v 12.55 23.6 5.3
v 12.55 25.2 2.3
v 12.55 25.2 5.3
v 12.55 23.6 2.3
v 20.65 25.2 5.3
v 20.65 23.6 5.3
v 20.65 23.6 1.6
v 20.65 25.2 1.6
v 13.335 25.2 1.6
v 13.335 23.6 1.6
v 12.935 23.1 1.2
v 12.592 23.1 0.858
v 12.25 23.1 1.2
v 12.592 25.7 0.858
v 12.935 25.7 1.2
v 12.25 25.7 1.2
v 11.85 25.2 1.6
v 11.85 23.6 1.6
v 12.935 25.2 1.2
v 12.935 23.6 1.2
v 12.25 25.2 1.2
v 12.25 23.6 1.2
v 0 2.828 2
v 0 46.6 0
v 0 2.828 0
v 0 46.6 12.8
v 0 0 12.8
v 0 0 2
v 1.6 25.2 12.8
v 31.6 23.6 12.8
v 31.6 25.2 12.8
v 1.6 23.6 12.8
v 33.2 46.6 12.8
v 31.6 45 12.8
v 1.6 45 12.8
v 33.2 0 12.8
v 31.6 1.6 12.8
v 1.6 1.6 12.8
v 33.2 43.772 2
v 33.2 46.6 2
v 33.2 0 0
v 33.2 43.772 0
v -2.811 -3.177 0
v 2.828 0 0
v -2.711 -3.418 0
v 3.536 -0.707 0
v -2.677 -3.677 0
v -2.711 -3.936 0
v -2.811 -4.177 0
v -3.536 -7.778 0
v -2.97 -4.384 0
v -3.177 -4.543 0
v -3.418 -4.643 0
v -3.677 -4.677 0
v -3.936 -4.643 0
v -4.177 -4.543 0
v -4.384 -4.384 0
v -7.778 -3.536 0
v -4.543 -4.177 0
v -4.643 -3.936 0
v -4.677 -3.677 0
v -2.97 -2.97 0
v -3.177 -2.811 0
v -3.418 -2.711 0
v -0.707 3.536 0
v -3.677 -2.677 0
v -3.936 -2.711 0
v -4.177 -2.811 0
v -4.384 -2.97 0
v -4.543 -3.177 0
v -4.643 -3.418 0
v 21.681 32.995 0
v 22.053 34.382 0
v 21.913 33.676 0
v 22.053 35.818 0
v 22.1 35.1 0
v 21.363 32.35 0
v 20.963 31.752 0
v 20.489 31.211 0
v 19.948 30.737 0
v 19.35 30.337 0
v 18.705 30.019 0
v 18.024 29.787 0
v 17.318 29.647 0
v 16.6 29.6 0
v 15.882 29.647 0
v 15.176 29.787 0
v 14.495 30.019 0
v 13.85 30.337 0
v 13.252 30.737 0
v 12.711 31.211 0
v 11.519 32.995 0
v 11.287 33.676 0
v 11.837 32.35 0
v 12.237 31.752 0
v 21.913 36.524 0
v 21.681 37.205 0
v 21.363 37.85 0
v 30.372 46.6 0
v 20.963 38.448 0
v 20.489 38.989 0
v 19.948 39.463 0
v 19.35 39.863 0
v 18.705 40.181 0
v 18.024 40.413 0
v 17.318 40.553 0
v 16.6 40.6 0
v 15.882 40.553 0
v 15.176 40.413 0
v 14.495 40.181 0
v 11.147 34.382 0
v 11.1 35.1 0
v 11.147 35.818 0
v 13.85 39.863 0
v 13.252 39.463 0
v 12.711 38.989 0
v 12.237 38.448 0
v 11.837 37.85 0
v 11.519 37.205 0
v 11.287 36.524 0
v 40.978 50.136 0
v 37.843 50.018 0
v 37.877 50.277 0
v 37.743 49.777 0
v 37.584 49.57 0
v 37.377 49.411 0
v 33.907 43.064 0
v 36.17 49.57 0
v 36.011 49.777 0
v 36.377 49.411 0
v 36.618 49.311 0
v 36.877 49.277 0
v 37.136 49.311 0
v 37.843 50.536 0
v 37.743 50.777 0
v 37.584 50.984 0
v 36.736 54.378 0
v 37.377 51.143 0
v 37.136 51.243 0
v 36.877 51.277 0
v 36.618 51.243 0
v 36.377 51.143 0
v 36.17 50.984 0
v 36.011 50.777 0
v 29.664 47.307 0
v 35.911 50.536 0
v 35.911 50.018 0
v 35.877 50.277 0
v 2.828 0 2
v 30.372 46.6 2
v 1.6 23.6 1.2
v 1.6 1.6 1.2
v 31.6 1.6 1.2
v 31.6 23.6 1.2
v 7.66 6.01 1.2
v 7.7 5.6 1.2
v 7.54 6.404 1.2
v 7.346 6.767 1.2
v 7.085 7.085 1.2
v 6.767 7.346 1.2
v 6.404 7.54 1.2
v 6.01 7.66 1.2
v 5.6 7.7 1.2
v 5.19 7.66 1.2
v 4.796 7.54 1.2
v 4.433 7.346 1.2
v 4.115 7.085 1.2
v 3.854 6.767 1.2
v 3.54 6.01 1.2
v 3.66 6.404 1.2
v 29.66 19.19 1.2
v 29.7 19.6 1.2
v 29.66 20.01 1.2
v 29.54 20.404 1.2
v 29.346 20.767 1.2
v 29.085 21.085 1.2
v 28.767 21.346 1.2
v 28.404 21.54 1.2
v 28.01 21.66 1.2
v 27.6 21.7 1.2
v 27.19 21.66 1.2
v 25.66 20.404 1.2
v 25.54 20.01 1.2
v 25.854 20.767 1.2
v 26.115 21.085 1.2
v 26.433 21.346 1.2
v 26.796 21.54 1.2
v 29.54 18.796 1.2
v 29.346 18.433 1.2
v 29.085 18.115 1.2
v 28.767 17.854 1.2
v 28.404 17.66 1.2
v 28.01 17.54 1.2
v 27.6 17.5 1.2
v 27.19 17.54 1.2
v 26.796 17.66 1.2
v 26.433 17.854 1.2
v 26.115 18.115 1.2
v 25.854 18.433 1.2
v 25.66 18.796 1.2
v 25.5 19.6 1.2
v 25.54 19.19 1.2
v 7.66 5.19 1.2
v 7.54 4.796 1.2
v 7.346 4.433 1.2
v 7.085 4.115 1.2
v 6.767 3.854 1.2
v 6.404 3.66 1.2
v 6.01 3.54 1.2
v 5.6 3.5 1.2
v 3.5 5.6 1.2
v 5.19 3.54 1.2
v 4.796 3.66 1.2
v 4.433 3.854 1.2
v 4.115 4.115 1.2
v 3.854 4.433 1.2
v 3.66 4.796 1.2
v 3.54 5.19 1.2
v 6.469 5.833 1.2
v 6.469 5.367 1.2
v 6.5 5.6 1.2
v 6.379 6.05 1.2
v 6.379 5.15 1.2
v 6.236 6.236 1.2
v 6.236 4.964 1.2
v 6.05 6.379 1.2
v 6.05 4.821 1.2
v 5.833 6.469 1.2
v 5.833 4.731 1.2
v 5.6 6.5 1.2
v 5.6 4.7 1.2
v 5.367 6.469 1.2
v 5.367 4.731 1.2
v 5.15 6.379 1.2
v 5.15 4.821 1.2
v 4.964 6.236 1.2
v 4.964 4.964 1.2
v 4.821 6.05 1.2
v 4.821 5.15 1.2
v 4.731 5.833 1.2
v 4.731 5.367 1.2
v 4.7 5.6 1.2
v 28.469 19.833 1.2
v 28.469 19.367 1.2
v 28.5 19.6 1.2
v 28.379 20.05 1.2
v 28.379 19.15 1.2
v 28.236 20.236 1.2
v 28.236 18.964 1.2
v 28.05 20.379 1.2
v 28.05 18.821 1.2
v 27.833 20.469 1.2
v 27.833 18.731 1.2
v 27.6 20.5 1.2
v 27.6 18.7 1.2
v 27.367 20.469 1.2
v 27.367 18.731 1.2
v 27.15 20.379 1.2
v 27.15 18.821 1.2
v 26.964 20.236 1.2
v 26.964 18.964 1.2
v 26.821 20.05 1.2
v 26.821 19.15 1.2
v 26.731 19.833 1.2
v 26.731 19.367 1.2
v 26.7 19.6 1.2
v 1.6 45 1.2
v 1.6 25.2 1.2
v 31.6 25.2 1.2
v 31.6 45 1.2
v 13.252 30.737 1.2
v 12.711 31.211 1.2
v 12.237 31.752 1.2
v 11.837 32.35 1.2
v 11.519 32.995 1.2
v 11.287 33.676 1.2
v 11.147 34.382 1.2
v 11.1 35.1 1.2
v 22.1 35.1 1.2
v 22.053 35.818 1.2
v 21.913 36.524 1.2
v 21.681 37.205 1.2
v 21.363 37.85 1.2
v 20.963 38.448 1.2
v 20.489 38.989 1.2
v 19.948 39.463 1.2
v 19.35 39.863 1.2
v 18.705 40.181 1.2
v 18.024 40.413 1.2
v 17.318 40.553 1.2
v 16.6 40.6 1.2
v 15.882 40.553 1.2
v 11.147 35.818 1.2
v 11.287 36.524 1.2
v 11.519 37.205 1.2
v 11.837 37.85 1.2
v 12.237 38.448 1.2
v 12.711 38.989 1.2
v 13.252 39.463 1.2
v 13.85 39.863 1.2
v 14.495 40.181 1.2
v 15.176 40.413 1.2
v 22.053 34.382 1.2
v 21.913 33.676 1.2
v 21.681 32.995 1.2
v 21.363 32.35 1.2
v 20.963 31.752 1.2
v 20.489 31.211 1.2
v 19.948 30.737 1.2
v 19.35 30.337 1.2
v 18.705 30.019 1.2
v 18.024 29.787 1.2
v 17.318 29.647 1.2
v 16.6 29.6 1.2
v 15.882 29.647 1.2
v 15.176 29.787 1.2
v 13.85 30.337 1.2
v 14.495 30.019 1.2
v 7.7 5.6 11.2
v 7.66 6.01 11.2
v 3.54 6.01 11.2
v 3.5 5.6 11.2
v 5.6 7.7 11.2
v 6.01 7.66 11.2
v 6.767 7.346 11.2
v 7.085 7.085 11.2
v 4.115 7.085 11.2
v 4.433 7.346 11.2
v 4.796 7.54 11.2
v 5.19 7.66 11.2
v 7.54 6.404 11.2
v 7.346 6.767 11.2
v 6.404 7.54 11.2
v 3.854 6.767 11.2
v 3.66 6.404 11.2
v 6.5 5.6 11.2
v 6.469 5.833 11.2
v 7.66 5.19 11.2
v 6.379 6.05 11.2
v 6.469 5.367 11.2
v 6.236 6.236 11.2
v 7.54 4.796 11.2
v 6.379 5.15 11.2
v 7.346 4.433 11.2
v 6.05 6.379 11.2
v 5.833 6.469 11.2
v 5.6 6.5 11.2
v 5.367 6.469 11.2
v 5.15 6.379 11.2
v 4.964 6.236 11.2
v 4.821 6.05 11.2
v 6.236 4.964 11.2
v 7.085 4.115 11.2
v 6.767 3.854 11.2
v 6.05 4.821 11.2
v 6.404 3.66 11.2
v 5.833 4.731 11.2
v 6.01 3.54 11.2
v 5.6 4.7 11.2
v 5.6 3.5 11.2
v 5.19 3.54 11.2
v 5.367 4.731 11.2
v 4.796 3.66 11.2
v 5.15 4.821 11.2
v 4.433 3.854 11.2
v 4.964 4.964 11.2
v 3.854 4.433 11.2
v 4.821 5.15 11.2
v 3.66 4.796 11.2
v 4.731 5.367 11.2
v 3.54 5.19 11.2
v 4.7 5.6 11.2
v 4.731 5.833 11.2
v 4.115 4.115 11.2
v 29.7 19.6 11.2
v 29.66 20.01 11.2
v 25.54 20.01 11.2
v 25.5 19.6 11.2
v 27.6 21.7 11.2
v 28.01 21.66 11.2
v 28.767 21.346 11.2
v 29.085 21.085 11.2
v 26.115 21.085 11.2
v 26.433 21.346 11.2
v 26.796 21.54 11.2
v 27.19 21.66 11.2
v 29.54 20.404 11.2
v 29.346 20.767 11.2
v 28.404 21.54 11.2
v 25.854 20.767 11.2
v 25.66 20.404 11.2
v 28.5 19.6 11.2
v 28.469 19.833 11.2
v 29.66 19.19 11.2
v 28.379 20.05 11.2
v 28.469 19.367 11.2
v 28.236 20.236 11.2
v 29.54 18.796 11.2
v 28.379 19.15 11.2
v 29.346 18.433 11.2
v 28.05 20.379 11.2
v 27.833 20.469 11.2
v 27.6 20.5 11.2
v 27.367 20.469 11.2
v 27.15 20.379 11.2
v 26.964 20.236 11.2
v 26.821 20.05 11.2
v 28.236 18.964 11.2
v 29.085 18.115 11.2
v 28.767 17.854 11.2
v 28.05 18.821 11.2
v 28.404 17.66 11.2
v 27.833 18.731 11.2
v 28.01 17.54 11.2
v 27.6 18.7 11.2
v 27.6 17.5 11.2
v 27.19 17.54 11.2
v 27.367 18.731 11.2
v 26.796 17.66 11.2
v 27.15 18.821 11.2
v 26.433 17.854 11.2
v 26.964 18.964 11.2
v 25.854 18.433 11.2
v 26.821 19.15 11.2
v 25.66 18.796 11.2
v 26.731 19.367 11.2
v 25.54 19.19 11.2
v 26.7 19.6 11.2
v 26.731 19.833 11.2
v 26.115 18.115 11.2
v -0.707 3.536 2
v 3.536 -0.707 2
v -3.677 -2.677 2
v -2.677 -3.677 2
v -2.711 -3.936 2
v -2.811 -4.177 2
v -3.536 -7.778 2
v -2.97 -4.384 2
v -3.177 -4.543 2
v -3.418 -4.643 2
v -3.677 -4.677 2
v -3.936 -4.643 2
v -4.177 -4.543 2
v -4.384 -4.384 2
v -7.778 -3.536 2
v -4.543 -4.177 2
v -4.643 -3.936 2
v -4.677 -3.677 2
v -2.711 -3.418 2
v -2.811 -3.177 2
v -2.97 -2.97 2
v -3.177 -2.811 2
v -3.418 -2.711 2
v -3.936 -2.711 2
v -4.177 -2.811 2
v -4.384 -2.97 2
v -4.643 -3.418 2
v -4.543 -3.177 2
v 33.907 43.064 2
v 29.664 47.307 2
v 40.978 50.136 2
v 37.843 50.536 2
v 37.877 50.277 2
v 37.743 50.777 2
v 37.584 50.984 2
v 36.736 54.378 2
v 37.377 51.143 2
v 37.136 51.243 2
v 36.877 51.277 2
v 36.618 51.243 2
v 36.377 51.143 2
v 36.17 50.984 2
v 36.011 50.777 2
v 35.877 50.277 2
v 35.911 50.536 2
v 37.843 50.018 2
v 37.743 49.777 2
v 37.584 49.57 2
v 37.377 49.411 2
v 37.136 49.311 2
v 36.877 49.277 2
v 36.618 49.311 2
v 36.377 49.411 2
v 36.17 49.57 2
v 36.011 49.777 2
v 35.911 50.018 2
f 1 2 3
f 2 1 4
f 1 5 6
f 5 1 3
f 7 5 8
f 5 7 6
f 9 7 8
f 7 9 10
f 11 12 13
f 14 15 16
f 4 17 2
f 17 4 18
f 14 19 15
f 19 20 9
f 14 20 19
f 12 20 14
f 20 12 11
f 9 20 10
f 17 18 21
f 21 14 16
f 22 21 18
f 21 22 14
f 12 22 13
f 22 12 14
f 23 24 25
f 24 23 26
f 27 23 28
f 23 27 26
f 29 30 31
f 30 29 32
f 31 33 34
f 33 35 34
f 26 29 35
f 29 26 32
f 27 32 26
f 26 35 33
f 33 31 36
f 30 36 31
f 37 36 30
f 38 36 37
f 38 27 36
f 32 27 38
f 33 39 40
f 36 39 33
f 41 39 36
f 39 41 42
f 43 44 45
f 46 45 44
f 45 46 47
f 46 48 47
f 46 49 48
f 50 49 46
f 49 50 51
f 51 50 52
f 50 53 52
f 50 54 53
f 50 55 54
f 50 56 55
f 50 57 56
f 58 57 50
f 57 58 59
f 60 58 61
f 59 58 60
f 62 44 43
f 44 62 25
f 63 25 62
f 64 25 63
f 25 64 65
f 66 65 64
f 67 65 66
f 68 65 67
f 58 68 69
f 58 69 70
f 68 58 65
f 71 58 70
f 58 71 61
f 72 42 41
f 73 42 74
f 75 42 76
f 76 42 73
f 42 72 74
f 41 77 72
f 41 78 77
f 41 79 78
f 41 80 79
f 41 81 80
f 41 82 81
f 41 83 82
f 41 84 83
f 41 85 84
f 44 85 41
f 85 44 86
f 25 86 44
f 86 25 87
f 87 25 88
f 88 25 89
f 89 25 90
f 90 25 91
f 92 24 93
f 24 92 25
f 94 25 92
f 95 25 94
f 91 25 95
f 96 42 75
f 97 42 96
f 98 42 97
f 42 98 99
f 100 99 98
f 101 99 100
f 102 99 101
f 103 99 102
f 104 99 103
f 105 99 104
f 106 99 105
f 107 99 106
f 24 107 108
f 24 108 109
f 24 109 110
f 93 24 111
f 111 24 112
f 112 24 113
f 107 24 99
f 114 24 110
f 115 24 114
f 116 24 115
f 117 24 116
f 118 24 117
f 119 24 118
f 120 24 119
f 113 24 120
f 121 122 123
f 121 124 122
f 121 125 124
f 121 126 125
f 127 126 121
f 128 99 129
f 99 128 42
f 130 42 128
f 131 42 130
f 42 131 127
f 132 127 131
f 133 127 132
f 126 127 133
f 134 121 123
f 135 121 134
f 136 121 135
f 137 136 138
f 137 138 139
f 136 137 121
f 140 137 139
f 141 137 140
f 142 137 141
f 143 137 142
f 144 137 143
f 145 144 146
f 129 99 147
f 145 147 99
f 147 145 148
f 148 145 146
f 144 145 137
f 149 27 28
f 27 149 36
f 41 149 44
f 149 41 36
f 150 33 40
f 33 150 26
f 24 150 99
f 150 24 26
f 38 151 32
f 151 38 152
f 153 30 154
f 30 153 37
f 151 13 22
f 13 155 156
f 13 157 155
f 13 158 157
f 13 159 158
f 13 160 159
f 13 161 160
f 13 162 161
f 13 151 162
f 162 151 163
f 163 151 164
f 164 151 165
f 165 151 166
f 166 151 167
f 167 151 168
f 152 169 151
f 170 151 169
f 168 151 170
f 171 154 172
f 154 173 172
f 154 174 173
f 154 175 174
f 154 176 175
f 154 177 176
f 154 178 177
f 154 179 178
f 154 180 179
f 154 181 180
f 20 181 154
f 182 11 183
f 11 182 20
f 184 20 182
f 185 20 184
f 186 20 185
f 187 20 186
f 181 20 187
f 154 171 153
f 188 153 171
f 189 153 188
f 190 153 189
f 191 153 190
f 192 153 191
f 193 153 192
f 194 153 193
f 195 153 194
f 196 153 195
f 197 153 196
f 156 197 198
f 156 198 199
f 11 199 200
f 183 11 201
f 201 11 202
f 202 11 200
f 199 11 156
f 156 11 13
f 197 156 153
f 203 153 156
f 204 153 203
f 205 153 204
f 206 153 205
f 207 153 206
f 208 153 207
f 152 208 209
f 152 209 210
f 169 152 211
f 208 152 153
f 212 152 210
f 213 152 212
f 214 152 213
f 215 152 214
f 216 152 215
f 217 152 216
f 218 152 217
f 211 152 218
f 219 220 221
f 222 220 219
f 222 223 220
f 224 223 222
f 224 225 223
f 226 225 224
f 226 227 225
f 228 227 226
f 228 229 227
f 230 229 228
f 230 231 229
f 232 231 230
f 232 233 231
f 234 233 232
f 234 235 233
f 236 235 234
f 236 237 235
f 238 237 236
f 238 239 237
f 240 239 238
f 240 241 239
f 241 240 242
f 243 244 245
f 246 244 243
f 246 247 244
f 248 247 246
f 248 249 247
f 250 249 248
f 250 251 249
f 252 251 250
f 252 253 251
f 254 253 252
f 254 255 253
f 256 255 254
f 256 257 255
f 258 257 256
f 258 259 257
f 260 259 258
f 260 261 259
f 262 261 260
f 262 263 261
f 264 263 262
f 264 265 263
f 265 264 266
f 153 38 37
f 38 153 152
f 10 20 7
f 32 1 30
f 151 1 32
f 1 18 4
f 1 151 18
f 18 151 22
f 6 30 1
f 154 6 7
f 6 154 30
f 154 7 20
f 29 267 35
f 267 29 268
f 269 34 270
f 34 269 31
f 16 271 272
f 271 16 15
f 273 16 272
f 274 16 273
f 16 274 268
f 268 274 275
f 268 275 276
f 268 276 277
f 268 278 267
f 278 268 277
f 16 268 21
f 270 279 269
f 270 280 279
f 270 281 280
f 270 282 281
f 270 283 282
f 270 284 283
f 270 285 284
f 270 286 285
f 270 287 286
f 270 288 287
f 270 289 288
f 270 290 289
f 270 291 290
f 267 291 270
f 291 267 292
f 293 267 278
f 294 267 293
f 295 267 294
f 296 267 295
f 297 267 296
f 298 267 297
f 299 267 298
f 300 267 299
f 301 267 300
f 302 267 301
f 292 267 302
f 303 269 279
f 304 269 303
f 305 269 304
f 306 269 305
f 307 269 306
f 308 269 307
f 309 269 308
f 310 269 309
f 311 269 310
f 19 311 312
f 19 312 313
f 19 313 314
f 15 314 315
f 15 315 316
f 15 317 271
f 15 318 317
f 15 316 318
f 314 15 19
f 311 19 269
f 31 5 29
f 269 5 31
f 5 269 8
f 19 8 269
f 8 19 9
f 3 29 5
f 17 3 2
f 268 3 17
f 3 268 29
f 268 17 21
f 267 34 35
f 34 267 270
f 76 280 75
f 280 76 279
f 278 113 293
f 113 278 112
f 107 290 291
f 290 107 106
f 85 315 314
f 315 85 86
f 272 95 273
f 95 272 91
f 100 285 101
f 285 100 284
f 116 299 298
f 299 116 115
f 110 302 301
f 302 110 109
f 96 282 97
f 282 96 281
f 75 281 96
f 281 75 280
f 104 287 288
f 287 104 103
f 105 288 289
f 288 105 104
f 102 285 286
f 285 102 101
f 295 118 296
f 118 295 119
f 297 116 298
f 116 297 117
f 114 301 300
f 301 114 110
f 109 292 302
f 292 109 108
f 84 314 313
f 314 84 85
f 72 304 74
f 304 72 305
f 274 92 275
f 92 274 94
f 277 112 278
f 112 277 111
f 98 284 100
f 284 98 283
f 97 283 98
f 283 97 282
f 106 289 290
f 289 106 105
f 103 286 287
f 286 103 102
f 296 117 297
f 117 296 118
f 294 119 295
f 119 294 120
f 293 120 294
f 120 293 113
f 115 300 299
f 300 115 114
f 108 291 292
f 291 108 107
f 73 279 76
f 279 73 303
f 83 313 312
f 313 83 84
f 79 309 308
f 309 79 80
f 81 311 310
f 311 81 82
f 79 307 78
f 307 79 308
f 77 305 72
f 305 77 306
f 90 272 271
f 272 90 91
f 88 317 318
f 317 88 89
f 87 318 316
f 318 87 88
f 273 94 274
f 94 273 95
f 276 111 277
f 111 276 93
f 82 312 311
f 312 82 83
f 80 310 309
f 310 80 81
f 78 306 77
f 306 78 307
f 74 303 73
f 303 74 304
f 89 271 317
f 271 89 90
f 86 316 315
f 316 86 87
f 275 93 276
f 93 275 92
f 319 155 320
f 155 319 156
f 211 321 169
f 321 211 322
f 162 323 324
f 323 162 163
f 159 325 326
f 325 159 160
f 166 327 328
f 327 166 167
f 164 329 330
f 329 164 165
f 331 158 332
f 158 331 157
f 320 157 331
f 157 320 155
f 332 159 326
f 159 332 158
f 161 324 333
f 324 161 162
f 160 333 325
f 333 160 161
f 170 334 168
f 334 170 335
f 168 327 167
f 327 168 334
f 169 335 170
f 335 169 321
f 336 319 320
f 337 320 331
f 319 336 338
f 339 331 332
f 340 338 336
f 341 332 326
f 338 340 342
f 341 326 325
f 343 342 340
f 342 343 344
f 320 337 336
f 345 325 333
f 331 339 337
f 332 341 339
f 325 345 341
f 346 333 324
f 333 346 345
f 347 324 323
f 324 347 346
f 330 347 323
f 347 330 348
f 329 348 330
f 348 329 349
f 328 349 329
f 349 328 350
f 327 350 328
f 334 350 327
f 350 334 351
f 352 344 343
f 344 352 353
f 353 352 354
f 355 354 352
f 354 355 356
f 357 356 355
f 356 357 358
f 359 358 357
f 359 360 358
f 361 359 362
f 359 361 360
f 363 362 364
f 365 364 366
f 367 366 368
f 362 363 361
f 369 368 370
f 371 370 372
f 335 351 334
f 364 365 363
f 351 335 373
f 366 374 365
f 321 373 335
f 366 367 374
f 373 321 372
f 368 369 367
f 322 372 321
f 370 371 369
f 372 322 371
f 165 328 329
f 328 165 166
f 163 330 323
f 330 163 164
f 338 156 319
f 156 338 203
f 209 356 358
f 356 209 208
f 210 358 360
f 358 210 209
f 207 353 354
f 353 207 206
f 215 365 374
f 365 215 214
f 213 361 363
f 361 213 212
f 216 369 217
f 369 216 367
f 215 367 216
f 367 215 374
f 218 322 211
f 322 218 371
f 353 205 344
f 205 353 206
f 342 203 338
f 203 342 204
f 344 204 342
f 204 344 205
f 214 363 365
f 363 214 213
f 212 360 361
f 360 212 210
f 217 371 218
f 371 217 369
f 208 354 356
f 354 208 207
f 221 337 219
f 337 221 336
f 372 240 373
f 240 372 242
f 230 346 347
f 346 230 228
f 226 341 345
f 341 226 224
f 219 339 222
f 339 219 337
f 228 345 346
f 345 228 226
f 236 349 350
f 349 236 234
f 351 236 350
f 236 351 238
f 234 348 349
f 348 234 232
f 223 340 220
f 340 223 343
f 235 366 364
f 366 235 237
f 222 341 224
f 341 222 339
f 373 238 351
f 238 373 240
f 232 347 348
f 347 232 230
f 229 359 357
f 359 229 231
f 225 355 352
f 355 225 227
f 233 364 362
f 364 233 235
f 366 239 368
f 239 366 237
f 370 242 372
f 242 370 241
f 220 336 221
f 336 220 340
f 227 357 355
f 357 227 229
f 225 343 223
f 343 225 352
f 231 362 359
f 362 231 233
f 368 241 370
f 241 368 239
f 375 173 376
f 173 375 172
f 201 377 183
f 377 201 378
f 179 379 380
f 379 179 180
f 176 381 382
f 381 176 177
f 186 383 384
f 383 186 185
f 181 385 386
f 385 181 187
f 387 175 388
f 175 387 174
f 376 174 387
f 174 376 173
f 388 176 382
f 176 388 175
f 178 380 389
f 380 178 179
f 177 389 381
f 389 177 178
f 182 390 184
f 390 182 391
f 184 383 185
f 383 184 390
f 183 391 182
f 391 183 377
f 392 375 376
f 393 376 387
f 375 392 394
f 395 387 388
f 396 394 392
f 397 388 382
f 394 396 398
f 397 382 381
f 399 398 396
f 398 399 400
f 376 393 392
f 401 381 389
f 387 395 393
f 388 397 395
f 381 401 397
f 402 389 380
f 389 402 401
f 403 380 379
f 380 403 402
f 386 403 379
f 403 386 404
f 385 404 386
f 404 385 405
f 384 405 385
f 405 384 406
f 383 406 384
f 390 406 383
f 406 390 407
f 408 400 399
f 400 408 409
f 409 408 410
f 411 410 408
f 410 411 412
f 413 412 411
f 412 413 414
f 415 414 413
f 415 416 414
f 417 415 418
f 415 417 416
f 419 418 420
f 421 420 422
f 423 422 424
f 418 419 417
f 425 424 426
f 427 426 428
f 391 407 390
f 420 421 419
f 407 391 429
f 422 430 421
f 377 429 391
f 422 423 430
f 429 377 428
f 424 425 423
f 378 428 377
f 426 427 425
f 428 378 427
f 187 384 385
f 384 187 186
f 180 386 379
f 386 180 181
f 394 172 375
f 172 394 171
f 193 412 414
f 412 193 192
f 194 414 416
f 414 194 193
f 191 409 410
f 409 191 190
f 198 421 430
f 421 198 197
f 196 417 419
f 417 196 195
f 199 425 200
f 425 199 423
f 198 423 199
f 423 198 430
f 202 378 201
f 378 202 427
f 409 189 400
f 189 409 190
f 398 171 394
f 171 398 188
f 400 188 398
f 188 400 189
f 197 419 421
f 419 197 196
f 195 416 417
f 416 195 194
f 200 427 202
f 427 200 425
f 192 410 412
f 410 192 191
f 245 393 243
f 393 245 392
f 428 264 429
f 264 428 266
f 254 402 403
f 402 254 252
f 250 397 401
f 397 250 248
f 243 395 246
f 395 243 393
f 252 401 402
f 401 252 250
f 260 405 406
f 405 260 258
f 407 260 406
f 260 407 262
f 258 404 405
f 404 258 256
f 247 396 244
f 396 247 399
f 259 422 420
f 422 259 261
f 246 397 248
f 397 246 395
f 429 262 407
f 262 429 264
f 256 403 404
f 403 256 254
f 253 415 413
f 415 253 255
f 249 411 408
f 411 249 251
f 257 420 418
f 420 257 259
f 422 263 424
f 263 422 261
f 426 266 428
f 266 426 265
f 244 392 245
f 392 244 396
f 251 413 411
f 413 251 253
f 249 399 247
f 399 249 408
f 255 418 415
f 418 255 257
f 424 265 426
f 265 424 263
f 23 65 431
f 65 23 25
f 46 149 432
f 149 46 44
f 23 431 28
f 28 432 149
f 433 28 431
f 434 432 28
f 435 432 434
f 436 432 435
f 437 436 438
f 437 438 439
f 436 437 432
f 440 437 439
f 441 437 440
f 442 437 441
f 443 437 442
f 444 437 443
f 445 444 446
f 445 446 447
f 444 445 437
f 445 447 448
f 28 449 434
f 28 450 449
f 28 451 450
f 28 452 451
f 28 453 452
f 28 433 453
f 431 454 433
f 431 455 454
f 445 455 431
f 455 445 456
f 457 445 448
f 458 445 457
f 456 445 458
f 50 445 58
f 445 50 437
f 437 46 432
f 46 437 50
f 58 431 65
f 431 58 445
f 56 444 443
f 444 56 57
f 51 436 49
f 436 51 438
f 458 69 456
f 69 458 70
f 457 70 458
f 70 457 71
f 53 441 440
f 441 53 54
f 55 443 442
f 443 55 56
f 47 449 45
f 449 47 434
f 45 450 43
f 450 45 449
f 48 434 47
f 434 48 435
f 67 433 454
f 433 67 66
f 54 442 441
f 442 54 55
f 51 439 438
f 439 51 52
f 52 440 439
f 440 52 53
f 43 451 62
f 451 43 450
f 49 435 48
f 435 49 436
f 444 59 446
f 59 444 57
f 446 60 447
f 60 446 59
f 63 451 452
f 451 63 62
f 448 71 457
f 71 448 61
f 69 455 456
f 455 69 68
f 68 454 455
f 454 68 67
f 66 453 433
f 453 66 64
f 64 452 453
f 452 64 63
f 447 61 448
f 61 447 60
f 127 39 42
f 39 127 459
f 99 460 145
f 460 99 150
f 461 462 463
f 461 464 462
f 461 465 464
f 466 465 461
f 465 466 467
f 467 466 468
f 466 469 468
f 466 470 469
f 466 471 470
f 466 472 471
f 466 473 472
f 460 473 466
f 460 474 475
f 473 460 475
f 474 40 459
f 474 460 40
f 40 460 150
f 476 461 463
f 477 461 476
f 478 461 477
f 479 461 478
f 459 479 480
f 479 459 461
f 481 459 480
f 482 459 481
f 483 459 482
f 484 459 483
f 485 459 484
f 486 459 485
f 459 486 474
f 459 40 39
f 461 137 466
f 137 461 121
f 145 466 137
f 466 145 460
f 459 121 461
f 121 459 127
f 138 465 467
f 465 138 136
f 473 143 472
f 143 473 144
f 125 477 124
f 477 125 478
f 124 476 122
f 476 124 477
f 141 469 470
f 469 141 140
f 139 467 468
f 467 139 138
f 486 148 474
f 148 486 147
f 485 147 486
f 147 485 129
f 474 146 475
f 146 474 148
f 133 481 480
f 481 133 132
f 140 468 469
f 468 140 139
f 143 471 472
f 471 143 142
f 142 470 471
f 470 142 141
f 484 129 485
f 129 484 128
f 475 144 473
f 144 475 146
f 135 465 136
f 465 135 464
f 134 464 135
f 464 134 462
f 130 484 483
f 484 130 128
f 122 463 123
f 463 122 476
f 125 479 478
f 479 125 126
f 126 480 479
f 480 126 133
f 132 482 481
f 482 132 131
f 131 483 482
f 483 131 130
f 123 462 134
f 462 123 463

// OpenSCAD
// ============================================================
//  Meridian Wrist Array — Satellite Pod v2
//  Rebuilt Aug 2026 | Sean (Whitehorse, YT)
//
//  ** REBUILD NOTICE **
//  The original satellite_pod_v2.scad could not be found on disk.
//  This file was reconstructed from two sources:
//    1. Authored parameter/geometry fragments recovered from past
//       conversation transcripts (marked CONFIRMED below).
//    2. Direct measurement of satellite_pod_v2_side.stl, which you
//       still had. Two values were back-solved from that mesh and
//       are marked DERIVED — trustworthy as dimensions, but the
//       original formulas that produced them are not recovered.
//    3. A few features (screw boss exact placement, lid rim) had no
//       surviving source text at all and are marked REBUILT — these
//       are reasonable reconstructions, not verified originals.
//       Cross-check against your physical prints before reprinting
//       a batch on these.
//
//  Rendered POD_L and POD_H below reproduce the uploaded STL's
//  bounding box exactly (33.2 x 46.6 x 12.8mm) — see the print
//  at the bottom of this file for the live check.
//
//  v2 change (CONFIRMED, from source): LRA pocket placement is a
//  parameter.
//    LRA_SIDE = "end"   -> v1 layout, pocket beyond the chamber's
//                          far end: [ DRV ][ div ][ LRA ]
//    LRA_SIDE = "side"  -> pocket alongside the chamber's long
//                          wall (pod gets wider, shorter):
//                              [ DRV chamber ]
//                              [   divider   ]
//                              [ LRA pocket  ]
//    LRA_X_FRAC slides the LRA along the chamber length in side
//    mode, 0.0 = cable-hole end, 1.0 = far end. NOT recovered from
//    source — set to 0.5 as a placeholder. Re-tune by dry-fitting
//    your DRV board and aligning to its OUT+/OUT- pads before
//    trusting this value.
//
//  NEW in this rebuild: LRA_CONN geometry. A notch through the
//  divider wall sized to the in-line connector on your LRA lead
//  (measured 6.90 x 3.20 x 2.20mm), positioned low near the floor
//  so it stays clear of the lid parting line rather than needing
//  a lid-side channel.
// ============================================================

// ---- Pod variant switch (CONFIRMED) ----
BOARD_TYPE = "drv_lra"; // "drv_lra" or "mux" -- this STL was drv_lra (verified: CHAMBER_L math reproduces measured 33.2mm exactly only with DRV_L, not MUX_L)
LRA_SIDE   = "side";    // "end" or "side"
LRA_X_FRAC = 0.5;       // REBUILT placeholder -- re-tune by dry fit, see note above

// ---- Component dimensions (CONFIRMED) ----
DRV_L = 26;    // Adafruit DRV2605L STEMMA QT board length
DRV_W = 18;    // board width
MUX_L = 31;    // TCA9548A breakout length -- Sean measured
MUX_W = 17.71; // TCA9548A breakout width -- Sean measured
BOARD_CLR = 2; // clearance added around the board, each side

LRA_D = 10;    // LRA diameter (coin-type)
LRA_T = 4;     // LRA thickness
LRA_SKIN_GAP = 1.0; // skin-contact opening = LRA_D + this

HAS_POCKET = (BOARD_TYPE == "drv_lra");
BOARD_L = (BOARD_TYPE == "mux") ? MUX_L : DRV_L;
BOARD_W = (BOARD_TYPE == "mux") ? MUX_W : DRV_W;

// ---- Wall/floor/lid thicknesses (CONFIRMED) ----
WALL  = 1.6;
FLOOR = 1.2;
LID_T = 1.6;
DIVIDER_T = WALL;

// ---- Derived chamber sizes (CONFIRMED formula, CHAMBER_H confirmed) ----
CHAMBER_L = BOARD_L + BOARD_CLR*2;
CHAMBER_W = BOARD_W + BOARD_CLR*2;
CHAMBER_H = 10; // matches puck's rev-4.5 DRV clearance convention; check vs your actual board+header stack

// ---- Pocket sizing (DERIVED from STL -- formula not recovered) ----
POCKET_SPAN = 19.8; // back-solved from measured pod Y=46.6mm; treat as a known-good
                     // number for THIS pod, not a formula to trust for other boards
POCKET_H = CHAMBER_H;

// ---- NEW: LRA connector channel through the divider ----
// Measured connector body: 6.90(L) x 3.20(W) x 2.20(H)mm
CONN_L = 6.90;
CONN_W = 3.20;
CONN_H = 2.20;
CONN_CLR_W = 0.7;   // total width clearance (per side ~0.35, PETG print tolerance)
CONN_CLR_H = 1.5;   // total height clearance -- bumped +1mm from 0.5 per print fit test (was too short)
CHANNEL_W = CONN_L + 1.2;      // 9-10mm target: length axis of connector runs along the channel
CHANNEL_H = CONN_H + CONN_CLR_H; // 3.7mm -- fits within DIVIDER_T's adjacent floor zone
CHANNEL_MOUTH_CHAMFER = 0.7;   // chamfer at each channel mouth so the wire jacket doesn't bite on a sharp edge

// Position: aligned with LRA_X_FRAC by default so the channel sits
// right next to wherever the LRA pocket actually lands. Override
// with CHANNEL_X_FRAC if your DRV board's OUT+/OUT- pads are
// somewhere else along the chamber.
CHANNEL_X_FRAC = LRA_X_FRAC;
CHANNEL_X = WALL + (CHAMBER_L - CHANNEL_W) * CHANNEL_X_FRAC;
CHANNEL_Z = FLOOR + 0.4; // low, near the floor -- clear of the lid regardless of LID_T

// ---- Pod outer envelope ----
POD_L = WALL + CHAMBER_L + WALL; // side mode: length axis is just the chamber, unchanged from v1
POD_W = HAS_POCKET && LRA_SIDE == "side"
    ? (WALL + CHAMBER_W + DIVIDER_T + POCKET_SPAN + WALL)
    : (CHAMBER_W + WALL*2);
POD_H = FLOOR + CHAMBER_H + LID_T;

// ---- NEW: stitch tabs for sewing the pod to a non-stretch rail ----
// No surviving source for these -- fresh design. Two tabs at diagonal
// corners (same convention as the screw bosses below), each a flat
// wing in the floor plane with a through-hole for waxed thread/floss.
// Bump TAB_HOLE_D if you're using something chunkier like paracord.
TAB_W = 8.0;       // tab length, projecting out from the corner
TAB_D = 6.0;       // tab width, perpendicular to projection
TAB_T = 2.0;       // tab thickness -- slightly thicker than FLOOR alone for stitch durability
TAB_HOLE_D = 2.0;  // through-hole diameter
TAB_HOLE_FRAC = 0.65; // hole position along the tab length, clear of the wall root
TAB_OVERLAP = 2.0; // tab extends this far INTO the shell wall so the union is a real
                    // solid merge, not just two solids touching along one edge

module stitch_tab(corner_x, corner_y, angle_deg) {
    translate([corner_x, corner_y, 0])
        rotate([0, 0, angle_deg])
            difference() {
                translate([-TAB_OVERLAP, -TAB_D/2, 0])
                    cube([TAB_W + TAB_OVERLAP, TAB_D, TAB_T]);
                translate([TAB_W * TAB_HOLE_FRAC, 0, -0.5])
                    cylinder(d=TAB_HOLE_D, h=TAB_T + 1, $fn=24);
            }
}

module stitch_tabs() {
    stitch_tab(0, 0, 225);         // near corner, points away into -x,-y
    stitch_tab(POD_L, POD_W, 45);  // far corner, points away into +x,+y
}

// ---- REBUILT: screw boss geometry (no surviving source text --
//      positions taken from sectioning the uploaded STL directly) ----
BOSS_OD = 4.2;
BOSS_ID = 1.8; // M2 self-tapping pilot, per puck-design convention
BOSS_H  = FLOOR + CHAMBER_H;
BOSS_INSET = 4.0; // approx from mesh section, diagonal corners

module screw_boss(x, y) {
    translate([x, y, 0])
        difference() {
            cylinder(d=BOSS_OD, h=BOSS_H, $fn=32);
            translate([0,0,-0.5]) cylinder(d=BOSS_ID, h=BOSS_H+1, $fn=24);
        }
}

module pod_body() {
    difference() {
        // outer shell
        cube([POD_L, POD_W, POD_H]);

        // main chamber void -- open-top tray (through-cut fix from the
        // July 28 session: +LID_T so no membrane seals the top)
        translate([WALL, WALL, FLOOR])
            cube([CHAMBER_L, CHAMBER_W, CHAMBER_H + LID_T + 1]);

        // LRA pocket void
        if (HAS_POCKET) {
            if (LRA_SIDE == "side") {
                translate([WALL, WALL + CHAMBER_W + DIVIDER_T, FLOOR])
                    cube([CHAMBER_L, POCKET_SPAN, POCKET_H + LID_T + 1]);
            } else {
                translate([WALL + CHAMBER_L + DIVIDER_T, WALL, FLOOR])
                    cube([POCKET_SPAN, CHAMBER_W, POCKET_H + LID_T + 1]);
            }
        }

        // LRA skin window -- through the floor, centered in the pocket
        // at LRA_X_FRAC along the chamber length
        if (HAS_POCKET) {
            lra_cx = WALL + CHAMBER_L * LRA_X_FRAC;
            lra_cy = WALL + CHAMBER_W + DIVIDER_T + POCKET_SPAN/2;
            translate([lra_cx, lra_cy, -0.5])
                cylinder(d=LRA_D + LRA_SKIN_GAP, h=FLOOR+1, $fn=48);
        }

        // NEW: connector channel through the divider, low near the floor
        if (HAS_POCKET && LRA_SIDE == "side") {
            translate([CHANNEL_X, WALL + CHAMBER_W - 0.5, CHANNEL_Z])
                cube([CHANNEL_W, DIVIDER_T + 1, CHANNEL_H]);
            // chamfer both mouths so the wire/connector doesn't ride a sharp edge
            translate([CHANNEL_X - CHANNEL_MOUTH_CHAMFER, WALL + CHAMBER_W - 0.5, CHANNEL_Z])
                rotate([0,45,0])
                    cube([CHANNEL_MOUTH_CHAMFER*1.5, DIVIDER_T + 1, CHANNEL_H]);
        }

        // screw boss pilot holes cut from the outer shell corners
        screw_boss_holes();
    }
    // screw bosses added back as solid posts inside the chamber corners
    translate([WALL, WALL, 0]) screw_boss(BOSS_INSET, BOSS_INSET);
    translate([WALL, WALL, 0]) screw_boss(CHAMBER_L - BOSS_INSET, CHAMBER_W - BOSS_INSET);

    // stitch tabs for rail attachment
    stitch_tabs();
}

module screw_boss_holes() {
    // placeholder -- bosses are solid posts with their own pilot hole
    // cut in screw_boss(); nothing additional to subtract here.
}

module pod_lid() {
    // REBUILT -- lid footprint measured off the uploaded STL
    // (33.2 x 42.8 x 1.6mm), inset from the outer wall
    lid_w = POD_W - 3.8; // matches measured lid Y vs body Y difference
    translate([0, 1.9, 0])
        cube([POD_L, lid_w, LID_T]);
}

RENDER = "body"; // "body" | "lid" | "preview"

if (RENDER == "body") pod_body();
else if (RENDER == "lid") pod_lid();
else {
    color("SteelBlue") pod_body();
    color([0.6,0.6,0.9,0.4]) translate([0,0,POD_H - LID_T]) pod_lid();
}

echo("POD_L =", POD_L, " POD_W =", POD_W, " POD_H =", POD_H);
